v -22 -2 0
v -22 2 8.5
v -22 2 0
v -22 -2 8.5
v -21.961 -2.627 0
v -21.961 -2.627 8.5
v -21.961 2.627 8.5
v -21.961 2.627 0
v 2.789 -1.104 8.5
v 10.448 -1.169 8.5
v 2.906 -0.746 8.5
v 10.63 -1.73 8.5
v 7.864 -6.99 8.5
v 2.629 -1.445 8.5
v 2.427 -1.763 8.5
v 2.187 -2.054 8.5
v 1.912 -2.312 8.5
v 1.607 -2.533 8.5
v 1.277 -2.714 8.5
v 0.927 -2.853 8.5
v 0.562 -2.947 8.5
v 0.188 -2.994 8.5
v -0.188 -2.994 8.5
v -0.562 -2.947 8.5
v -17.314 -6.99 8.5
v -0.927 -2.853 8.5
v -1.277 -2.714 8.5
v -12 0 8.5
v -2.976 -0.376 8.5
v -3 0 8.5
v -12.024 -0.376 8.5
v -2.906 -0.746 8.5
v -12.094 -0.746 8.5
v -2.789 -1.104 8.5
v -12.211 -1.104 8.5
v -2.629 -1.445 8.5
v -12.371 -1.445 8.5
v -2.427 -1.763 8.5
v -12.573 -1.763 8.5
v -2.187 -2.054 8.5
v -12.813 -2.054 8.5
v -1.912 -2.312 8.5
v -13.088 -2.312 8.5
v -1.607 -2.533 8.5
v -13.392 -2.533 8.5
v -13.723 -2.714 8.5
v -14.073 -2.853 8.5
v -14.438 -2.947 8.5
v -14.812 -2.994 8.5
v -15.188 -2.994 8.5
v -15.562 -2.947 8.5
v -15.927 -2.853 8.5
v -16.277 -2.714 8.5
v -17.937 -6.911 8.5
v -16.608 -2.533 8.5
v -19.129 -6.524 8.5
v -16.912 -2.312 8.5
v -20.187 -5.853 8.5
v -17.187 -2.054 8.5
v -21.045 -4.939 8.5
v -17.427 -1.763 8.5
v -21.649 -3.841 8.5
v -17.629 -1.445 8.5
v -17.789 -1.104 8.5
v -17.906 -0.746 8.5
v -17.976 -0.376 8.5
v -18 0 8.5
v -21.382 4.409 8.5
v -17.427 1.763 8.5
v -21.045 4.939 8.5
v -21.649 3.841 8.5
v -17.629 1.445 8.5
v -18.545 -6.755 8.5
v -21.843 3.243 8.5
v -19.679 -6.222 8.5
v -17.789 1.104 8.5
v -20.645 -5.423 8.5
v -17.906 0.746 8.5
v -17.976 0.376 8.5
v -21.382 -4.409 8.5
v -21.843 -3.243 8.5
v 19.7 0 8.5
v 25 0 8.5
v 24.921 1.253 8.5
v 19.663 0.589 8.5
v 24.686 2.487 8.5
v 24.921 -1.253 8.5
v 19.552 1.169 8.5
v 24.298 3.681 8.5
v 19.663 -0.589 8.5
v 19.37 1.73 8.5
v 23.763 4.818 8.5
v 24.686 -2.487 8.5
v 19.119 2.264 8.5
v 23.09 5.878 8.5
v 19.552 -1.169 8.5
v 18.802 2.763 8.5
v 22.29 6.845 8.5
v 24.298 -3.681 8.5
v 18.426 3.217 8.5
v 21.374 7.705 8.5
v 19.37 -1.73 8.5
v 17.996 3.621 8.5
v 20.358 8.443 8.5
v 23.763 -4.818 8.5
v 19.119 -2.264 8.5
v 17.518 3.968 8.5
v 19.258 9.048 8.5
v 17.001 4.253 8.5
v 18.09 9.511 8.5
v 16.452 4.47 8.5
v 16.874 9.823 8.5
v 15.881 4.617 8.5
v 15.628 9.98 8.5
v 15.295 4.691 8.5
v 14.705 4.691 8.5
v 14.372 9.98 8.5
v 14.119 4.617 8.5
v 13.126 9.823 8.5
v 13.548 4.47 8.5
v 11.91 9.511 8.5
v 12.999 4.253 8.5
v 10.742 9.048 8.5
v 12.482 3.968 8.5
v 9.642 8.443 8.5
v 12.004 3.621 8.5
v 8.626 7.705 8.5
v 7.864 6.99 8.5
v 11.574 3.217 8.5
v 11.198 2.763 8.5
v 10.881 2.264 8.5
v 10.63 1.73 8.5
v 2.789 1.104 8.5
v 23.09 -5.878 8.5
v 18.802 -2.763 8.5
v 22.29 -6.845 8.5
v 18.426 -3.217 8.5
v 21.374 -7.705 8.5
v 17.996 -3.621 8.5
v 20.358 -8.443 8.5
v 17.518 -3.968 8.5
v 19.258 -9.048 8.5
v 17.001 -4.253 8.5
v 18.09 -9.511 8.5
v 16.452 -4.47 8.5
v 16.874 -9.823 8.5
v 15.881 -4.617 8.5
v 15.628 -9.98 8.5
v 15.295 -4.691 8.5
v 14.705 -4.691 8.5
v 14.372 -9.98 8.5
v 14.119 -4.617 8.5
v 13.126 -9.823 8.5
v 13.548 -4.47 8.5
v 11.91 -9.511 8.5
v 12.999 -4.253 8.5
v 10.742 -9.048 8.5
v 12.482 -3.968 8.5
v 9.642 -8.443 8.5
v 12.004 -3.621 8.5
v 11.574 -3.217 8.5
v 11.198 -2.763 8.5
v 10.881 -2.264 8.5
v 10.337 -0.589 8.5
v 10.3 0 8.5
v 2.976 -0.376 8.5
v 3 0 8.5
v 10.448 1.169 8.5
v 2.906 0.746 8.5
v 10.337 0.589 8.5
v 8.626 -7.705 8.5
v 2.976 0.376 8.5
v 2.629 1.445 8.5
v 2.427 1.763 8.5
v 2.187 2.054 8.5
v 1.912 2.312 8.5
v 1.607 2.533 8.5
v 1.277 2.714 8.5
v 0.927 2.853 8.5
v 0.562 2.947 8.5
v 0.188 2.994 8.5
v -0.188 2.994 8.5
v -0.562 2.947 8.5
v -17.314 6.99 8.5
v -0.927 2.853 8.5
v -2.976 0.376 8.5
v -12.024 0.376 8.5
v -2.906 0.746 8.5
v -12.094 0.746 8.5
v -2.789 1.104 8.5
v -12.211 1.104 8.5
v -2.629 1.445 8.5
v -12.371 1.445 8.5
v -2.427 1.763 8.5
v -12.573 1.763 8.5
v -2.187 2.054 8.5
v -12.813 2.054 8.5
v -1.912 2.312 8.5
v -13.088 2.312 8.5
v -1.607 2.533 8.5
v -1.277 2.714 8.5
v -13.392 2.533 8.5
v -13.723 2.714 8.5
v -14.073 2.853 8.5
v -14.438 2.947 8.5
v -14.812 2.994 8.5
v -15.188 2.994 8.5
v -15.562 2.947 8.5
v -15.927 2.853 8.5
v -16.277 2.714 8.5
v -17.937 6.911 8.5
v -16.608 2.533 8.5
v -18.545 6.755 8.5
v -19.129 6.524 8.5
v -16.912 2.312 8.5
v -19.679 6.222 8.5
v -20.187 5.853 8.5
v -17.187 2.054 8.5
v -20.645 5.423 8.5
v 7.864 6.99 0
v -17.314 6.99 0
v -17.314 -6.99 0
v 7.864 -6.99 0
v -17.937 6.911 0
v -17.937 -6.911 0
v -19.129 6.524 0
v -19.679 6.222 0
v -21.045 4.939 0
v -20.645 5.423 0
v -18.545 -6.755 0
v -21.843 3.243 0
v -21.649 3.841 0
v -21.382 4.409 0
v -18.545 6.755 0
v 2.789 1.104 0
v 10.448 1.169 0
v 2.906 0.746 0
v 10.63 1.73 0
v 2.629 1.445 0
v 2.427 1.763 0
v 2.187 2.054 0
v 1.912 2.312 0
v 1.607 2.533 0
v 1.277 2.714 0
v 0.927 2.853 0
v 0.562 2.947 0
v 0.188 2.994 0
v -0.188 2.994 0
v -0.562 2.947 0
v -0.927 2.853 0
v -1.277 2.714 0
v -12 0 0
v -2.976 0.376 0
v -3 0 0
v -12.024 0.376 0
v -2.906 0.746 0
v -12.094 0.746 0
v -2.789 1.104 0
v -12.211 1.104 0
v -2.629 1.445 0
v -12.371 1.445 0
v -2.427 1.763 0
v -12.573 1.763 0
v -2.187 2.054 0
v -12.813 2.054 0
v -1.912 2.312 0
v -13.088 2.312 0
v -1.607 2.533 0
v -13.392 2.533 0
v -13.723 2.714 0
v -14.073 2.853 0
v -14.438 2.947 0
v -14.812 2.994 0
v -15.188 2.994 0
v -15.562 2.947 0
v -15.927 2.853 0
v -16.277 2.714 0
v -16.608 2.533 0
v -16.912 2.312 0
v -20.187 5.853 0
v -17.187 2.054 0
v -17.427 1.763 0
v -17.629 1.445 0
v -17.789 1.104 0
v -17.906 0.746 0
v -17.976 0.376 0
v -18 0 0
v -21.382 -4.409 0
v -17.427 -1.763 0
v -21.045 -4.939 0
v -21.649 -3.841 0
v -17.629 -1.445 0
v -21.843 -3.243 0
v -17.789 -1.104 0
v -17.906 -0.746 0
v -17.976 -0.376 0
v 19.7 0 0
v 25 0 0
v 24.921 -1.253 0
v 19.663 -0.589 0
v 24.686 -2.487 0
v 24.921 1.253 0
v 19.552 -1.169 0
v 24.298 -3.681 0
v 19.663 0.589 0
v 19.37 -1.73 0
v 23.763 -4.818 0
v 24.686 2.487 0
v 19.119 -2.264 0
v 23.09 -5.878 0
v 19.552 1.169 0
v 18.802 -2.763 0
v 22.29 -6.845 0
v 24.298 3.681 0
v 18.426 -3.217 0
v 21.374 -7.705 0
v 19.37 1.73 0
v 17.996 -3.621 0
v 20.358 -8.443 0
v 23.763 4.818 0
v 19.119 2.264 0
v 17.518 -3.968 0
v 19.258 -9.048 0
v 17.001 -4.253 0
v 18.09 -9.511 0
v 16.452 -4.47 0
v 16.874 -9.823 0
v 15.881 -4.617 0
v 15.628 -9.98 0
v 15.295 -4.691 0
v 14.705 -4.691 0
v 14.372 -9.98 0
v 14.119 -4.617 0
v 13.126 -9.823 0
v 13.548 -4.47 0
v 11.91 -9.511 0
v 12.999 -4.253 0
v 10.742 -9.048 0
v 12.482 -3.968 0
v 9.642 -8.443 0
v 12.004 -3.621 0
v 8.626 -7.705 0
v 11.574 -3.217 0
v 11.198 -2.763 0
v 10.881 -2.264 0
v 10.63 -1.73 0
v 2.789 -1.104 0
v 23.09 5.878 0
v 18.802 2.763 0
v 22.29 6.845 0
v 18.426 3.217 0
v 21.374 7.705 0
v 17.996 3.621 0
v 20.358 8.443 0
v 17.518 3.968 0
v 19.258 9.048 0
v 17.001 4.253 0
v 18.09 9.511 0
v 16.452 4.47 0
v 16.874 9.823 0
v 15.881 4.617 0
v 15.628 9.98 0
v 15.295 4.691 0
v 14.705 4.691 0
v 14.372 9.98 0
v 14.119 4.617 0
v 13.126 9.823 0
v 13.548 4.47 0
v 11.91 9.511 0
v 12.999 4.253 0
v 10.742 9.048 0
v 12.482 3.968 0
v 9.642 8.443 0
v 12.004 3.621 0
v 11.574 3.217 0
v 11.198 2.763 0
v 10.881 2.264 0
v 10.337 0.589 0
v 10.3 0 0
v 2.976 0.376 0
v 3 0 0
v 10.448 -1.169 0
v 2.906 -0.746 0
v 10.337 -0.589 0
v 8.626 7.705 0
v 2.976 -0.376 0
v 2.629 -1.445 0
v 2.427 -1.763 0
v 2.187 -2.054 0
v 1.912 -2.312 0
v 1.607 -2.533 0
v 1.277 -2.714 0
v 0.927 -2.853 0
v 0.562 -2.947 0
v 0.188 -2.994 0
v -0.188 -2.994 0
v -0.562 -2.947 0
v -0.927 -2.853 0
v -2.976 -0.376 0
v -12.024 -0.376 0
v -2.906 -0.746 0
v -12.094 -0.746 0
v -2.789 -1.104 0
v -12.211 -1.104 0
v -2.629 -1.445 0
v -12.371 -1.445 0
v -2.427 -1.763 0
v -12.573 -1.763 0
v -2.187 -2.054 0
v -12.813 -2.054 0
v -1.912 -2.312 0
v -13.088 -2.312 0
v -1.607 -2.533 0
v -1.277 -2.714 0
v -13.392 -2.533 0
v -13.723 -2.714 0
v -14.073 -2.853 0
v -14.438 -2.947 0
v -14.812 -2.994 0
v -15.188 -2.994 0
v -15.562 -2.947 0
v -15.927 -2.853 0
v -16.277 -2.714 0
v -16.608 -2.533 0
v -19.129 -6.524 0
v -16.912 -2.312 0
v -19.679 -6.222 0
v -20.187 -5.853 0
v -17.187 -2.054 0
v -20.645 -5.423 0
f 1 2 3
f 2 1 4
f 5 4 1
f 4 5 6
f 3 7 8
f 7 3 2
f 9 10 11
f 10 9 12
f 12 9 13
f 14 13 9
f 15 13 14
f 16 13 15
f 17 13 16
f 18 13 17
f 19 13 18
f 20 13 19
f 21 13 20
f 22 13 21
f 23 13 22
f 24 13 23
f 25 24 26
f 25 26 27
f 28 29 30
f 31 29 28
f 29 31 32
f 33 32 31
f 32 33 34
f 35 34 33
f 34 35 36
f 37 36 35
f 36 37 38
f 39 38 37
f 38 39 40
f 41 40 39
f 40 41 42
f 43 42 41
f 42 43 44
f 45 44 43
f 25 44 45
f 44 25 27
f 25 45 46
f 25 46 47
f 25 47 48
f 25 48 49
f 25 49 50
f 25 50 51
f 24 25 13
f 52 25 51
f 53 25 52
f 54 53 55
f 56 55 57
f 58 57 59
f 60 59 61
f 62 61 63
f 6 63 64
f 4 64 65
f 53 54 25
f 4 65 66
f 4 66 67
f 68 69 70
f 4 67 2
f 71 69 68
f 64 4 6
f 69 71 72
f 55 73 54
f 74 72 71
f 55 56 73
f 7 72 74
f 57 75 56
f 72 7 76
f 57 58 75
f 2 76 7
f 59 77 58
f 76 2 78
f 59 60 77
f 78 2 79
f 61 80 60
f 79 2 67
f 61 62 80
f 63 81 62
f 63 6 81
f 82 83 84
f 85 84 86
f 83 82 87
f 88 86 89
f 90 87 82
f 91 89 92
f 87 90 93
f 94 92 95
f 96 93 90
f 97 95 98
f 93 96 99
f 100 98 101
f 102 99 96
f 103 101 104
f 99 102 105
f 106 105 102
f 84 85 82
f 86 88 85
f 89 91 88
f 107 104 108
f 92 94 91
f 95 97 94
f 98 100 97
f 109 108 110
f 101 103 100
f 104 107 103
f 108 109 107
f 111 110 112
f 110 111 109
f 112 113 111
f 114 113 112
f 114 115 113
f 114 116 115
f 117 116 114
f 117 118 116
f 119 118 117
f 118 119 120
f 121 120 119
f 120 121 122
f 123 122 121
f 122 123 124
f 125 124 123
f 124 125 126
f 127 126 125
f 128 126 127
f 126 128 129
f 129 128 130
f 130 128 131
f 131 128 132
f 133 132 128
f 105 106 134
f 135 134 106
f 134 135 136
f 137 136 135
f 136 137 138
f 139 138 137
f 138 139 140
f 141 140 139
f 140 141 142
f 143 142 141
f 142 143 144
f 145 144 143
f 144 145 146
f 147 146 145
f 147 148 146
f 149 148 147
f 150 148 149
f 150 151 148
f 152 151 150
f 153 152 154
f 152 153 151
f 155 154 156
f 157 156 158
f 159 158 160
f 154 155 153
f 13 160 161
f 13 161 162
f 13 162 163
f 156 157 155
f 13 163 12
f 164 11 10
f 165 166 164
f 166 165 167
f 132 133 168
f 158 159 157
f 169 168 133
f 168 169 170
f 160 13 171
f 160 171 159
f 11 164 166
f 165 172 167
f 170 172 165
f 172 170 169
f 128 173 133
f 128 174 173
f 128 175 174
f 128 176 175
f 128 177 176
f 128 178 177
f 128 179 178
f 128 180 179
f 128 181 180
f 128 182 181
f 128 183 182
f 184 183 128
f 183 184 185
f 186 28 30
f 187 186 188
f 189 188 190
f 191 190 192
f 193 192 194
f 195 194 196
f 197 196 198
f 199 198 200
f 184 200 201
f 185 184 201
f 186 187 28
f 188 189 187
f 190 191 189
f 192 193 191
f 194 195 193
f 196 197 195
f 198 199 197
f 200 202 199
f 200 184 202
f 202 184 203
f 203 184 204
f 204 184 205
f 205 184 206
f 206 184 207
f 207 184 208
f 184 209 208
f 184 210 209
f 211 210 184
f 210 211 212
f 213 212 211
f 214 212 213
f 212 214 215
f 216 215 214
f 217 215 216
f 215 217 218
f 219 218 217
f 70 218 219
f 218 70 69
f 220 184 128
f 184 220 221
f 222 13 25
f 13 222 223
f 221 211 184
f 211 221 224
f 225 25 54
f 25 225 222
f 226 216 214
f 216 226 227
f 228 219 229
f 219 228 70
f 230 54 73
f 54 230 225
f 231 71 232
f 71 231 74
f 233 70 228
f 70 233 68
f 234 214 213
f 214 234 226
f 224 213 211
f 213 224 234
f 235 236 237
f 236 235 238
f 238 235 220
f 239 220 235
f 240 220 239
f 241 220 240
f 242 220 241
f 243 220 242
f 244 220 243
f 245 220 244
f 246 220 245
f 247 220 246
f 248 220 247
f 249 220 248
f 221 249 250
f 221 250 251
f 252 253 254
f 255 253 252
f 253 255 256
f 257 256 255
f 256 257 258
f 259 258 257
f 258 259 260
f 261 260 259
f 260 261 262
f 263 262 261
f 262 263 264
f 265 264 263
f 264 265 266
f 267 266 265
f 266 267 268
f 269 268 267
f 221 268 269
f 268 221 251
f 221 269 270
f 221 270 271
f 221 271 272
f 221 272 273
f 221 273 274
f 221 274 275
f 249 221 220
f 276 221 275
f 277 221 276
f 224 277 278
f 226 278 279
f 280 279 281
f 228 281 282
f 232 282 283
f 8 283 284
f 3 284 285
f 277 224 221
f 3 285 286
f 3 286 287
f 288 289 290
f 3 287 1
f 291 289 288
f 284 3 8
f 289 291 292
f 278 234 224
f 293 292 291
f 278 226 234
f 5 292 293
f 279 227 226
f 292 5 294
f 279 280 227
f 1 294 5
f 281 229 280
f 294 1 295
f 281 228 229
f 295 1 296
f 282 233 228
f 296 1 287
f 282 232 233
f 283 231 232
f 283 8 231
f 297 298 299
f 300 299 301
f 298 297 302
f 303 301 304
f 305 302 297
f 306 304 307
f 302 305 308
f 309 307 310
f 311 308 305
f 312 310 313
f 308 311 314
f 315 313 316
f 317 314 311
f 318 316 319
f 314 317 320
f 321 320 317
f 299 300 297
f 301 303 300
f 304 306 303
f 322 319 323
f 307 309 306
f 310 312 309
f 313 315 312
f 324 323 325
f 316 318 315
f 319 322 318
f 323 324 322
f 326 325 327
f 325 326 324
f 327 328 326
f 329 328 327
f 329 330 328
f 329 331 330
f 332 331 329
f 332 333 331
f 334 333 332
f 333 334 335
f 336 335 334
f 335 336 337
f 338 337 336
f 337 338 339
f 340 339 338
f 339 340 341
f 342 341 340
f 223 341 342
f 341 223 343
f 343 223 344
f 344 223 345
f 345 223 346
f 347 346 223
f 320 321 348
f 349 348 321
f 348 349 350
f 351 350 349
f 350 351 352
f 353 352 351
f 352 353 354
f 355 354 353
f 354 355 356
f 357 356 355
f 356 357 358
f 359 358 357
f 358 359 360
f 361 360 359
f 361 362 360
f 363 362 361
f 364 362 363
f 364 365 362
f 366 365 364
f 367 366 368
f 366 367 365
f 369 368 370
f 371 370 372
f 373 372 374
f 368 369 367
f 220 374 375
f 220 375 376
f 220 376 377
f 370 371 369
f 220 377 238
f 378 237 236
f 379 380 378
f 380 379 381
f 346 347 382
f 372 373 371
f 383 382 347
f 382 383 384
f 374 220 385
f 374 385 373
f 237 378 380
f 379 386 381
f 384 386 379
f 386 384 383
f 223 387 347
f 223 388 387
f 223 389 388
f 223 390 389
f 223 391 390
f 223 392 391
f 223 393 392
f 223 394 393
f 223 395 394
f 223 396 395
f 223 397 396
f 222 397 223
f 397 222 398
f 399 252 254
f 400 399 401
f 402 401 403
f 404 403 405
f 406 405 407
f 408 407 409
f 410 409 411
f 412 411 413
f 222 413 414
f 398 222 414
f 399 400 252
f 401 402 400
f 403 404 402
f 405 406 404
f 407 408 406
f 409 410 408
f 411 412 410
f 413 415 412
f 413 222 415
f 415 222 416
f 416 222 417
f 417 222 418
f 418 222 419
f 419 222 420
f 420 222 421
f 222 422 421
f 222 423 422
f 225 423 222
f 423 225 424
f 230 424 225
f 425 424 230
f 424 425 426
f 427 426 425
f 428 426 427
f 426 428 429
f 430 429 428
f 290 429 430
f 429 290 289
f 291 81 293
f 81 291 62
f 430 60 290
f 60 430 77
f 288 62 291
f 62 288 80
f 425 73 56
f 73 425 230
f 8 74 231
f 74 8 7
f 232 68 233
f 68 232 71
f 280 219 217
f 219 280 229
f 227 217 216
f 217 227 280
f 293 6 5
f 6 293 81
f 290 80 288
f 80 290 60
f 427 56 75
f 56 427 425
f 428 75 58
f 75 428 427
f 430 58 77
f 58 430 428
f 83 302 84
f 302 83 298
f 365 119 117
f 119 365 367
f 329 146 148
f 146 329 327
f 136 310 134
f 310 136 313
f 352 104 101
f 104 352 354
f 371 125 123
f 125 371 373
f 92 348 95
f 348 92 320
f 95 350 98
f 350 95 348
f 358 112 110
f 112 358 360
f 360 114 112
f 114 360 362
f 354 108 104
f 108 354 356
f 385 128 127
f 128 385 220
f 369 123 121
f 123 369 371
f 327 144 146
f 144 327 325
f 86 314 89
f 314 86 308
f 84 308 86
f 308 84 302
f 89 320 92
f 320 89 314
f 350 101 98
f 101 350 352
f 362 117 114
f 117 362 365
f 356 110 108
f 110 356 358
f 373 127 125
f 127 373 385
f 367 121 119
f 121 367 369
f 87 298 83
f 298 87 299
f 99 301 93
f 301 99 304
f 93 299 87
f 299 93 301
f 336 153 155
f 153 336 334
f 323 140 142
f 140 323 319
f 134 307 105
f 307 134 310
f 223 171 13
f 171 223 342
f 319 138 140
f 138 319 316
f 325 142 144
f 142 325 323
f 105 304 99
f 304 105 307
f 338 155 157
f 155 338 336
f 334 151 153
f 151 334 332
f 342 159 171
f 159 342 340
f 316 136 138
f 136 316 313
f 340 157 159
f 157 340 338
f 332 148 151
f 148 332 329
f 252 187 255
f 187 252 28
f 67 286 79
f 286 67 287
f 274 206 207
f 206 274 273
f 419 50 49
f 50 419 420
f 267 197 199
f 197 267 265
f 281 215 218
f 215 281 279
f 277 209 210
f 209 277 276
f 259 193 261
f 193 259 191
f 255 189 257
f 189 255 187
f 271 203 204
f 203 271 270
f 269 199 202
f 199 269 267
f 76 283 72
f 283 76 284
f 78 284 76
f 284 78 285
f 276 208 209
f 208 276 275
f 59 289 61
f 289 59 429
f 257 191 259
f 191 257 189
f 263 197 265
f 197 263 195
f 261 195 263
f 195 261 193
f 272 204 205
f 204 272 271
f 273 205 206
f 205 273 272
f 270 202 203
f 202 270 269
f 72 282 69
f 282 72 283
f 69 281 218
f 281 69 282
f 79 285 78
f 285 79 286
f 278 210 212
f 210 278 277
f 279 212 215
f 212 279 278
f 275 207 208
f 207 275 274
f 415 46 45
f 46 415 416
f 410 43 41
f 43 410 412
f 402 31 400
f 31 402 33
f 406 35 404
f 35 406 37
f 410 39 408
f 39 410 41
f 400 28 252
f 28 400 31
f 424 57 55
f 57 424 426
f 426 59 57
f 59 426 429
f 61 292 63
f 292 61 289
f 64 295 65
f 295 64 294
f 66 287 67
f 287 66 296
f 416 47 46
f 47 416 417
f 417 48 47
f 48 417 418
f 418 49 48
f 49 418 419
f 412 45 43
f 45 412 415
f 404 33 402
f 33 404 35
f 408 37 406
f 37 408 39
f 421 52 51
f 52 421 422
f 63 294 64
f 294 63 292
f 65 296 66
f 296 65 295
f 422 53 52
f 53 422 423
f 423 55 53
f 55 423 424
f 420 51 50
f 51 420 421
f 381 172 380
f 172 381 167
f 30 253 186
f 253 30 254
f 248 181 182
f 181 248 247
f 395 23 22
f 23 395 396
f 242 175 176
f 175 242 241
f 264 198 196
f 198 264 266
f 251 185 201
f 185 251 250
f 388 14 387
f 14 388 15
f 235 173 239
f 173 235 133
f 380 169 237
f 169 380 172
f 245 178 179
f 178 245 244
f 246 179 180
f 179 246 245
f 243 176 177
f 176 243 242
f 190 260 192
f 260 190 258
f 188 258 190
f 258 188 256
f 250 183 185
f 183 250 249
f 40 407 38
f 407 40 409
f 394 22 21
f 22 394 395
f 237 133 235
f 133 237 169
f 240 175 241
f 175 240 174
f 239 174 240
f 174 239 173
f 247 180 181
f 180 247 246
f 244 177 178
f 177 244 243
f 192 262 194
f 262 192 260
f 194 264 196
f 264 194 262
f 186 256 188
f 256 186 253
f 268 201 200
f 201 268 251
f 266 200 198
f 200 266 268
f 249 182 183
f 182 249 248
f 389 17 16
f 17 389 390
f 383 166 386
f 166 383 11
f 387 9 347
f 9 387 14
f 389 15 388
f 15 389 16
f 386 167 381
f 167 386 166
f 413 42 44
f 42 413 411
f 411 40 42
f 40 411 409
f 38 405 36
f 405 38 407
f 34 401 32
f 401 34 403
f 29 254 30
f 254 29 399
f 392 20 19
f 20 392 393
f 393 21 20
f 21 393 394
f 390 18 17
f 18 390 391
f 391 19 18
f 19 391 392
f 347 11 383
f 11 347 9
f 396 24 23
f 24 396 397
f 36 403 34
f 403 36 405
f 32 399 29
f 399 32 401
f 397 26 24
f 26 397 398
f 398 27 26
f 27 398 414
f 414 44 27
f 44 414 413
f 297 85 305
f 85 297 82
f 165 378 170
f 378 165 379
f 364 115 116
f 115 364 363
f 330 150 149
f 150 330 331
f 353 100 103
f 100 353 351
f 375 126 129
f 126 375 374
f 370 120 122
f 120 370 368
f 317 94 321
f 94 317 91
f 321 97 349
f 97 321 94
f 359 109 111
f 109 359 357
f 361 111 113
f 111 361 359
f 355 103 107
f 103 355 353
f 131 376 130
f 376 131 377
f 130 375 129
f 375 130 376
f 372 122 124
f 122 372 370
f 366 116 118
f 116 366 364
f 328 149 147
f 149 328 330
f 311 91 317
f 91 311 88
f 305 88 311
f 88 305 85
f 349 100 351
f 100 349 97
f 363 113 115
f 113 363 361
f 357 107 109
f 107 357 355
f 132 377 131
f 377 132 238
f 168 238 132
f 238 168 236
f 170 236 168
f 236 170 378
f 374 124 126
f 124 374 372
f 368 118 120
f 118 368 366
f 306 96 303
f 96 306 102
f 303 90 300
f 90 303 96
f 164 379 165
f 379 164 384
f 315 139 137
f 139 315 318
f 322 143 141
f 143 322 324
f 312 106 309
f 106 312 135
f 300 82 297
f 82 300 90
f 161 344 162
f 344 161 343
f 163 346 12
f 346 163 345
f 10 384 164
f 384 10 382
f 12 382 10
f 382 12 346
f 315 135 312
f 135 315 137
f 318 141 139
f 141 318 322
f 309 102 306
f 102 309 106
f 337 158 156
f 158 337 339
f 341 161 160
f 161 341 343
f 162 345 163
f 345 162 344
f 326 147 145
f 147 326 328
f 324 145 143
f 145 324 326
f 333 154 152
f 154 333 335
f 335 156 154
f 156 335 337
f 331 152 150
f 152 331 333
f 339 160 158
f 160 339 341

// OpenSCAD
$fn = 50;


difference() {
	union() {
		translate(v = [0, 0, 0]) {
			rotate(a = [0, 0, 0]) {
				hull() {
					translate(v = [-17.0000000000, 2.0000000000, 0]) {
						rotate(a = [0, 0, 0]) {
							translate(v = [0, 0, 0]) {
								rotate(a = [0, 0, 0]) {
									cylinder(h = 8.5000000000, r = 5);
								}
							}
						}
					}
					translate(v = [17.0000000000, 2.0000000000, 0]) {
						rotate(a = [0, 0, 0]) {
							translate(v = [0, 0, 0]) {
								rotate(a = [0, 0, 0]) {
									cylinder(h = 8.5000000000, r = 5);
								}
							}
						}
					}
					translate(v = [-17.0000000000, -2.0000000000, 0]) {
						rotate(a = [0, 0, 0]) {
							translate(v = [0, 0, 0]) {
								rotate(a = [0, 0, 0]) {
									cylinder(h = 8.5000000000, r = 5);
								}
							}
						}
					}
					translate(v = [17.0000000000, -2.0000000000, 0]) {
						rotate(a = [0, 0, 0]) {
							translate(v = [0, 0, 0]) {
								rotate(a = [0, 0, 0]) {
									cylinder(h = 8.5000000000, r = 5);
								}
							}
						}
					}
				}
			}
		}
		translate(v = [15.0000000000, 0, 0.0000000000]) {
			rotate(a = [0, 0, 0]) {
				cylinder(h = 8.5000000000, r = 10.0000000000);
			}
		}
	}
	union() {
		translate(v = [-15.0000000000, 0.0000000000, 0]) {
			rotate(a = [0, 0, 0]) {
				translate(v = [0, 0, -50]) {
					rotate(a = [0, 0, 0]) {
						cylinder(h = 100, r = 3.0000000000);
					}
				}
			}
		}
		translate(v = [0.0000000000, 0.0000000000, 0]) {
			rotate(a = [0, 0, 0]) {
				translate(v = [0, 0, -50]) {
					rotate(a = [0, 0, 0]) {
						cylinder(h = 100, r = 3.0000000000);
					}
				}
			}
		}
		translate(v = [15.0000000000, 0.0000000000, 0]) {
			rotate(a = [0, 0, 0]) {
				translate(v = [0, 0, -50]) {
					rotate(a = [0, 0, 0]) {
						cylinder(h = 100, r = 3.0000000000);
					}
				}
			}
		}
		translate(v = [15.0000000000, 0, -125.0000000000]) {
			rotate(a = [0, 0, 0]) {
				cylinder(h = 250, r = 4.7000000000);
			}
		}
	}
}
